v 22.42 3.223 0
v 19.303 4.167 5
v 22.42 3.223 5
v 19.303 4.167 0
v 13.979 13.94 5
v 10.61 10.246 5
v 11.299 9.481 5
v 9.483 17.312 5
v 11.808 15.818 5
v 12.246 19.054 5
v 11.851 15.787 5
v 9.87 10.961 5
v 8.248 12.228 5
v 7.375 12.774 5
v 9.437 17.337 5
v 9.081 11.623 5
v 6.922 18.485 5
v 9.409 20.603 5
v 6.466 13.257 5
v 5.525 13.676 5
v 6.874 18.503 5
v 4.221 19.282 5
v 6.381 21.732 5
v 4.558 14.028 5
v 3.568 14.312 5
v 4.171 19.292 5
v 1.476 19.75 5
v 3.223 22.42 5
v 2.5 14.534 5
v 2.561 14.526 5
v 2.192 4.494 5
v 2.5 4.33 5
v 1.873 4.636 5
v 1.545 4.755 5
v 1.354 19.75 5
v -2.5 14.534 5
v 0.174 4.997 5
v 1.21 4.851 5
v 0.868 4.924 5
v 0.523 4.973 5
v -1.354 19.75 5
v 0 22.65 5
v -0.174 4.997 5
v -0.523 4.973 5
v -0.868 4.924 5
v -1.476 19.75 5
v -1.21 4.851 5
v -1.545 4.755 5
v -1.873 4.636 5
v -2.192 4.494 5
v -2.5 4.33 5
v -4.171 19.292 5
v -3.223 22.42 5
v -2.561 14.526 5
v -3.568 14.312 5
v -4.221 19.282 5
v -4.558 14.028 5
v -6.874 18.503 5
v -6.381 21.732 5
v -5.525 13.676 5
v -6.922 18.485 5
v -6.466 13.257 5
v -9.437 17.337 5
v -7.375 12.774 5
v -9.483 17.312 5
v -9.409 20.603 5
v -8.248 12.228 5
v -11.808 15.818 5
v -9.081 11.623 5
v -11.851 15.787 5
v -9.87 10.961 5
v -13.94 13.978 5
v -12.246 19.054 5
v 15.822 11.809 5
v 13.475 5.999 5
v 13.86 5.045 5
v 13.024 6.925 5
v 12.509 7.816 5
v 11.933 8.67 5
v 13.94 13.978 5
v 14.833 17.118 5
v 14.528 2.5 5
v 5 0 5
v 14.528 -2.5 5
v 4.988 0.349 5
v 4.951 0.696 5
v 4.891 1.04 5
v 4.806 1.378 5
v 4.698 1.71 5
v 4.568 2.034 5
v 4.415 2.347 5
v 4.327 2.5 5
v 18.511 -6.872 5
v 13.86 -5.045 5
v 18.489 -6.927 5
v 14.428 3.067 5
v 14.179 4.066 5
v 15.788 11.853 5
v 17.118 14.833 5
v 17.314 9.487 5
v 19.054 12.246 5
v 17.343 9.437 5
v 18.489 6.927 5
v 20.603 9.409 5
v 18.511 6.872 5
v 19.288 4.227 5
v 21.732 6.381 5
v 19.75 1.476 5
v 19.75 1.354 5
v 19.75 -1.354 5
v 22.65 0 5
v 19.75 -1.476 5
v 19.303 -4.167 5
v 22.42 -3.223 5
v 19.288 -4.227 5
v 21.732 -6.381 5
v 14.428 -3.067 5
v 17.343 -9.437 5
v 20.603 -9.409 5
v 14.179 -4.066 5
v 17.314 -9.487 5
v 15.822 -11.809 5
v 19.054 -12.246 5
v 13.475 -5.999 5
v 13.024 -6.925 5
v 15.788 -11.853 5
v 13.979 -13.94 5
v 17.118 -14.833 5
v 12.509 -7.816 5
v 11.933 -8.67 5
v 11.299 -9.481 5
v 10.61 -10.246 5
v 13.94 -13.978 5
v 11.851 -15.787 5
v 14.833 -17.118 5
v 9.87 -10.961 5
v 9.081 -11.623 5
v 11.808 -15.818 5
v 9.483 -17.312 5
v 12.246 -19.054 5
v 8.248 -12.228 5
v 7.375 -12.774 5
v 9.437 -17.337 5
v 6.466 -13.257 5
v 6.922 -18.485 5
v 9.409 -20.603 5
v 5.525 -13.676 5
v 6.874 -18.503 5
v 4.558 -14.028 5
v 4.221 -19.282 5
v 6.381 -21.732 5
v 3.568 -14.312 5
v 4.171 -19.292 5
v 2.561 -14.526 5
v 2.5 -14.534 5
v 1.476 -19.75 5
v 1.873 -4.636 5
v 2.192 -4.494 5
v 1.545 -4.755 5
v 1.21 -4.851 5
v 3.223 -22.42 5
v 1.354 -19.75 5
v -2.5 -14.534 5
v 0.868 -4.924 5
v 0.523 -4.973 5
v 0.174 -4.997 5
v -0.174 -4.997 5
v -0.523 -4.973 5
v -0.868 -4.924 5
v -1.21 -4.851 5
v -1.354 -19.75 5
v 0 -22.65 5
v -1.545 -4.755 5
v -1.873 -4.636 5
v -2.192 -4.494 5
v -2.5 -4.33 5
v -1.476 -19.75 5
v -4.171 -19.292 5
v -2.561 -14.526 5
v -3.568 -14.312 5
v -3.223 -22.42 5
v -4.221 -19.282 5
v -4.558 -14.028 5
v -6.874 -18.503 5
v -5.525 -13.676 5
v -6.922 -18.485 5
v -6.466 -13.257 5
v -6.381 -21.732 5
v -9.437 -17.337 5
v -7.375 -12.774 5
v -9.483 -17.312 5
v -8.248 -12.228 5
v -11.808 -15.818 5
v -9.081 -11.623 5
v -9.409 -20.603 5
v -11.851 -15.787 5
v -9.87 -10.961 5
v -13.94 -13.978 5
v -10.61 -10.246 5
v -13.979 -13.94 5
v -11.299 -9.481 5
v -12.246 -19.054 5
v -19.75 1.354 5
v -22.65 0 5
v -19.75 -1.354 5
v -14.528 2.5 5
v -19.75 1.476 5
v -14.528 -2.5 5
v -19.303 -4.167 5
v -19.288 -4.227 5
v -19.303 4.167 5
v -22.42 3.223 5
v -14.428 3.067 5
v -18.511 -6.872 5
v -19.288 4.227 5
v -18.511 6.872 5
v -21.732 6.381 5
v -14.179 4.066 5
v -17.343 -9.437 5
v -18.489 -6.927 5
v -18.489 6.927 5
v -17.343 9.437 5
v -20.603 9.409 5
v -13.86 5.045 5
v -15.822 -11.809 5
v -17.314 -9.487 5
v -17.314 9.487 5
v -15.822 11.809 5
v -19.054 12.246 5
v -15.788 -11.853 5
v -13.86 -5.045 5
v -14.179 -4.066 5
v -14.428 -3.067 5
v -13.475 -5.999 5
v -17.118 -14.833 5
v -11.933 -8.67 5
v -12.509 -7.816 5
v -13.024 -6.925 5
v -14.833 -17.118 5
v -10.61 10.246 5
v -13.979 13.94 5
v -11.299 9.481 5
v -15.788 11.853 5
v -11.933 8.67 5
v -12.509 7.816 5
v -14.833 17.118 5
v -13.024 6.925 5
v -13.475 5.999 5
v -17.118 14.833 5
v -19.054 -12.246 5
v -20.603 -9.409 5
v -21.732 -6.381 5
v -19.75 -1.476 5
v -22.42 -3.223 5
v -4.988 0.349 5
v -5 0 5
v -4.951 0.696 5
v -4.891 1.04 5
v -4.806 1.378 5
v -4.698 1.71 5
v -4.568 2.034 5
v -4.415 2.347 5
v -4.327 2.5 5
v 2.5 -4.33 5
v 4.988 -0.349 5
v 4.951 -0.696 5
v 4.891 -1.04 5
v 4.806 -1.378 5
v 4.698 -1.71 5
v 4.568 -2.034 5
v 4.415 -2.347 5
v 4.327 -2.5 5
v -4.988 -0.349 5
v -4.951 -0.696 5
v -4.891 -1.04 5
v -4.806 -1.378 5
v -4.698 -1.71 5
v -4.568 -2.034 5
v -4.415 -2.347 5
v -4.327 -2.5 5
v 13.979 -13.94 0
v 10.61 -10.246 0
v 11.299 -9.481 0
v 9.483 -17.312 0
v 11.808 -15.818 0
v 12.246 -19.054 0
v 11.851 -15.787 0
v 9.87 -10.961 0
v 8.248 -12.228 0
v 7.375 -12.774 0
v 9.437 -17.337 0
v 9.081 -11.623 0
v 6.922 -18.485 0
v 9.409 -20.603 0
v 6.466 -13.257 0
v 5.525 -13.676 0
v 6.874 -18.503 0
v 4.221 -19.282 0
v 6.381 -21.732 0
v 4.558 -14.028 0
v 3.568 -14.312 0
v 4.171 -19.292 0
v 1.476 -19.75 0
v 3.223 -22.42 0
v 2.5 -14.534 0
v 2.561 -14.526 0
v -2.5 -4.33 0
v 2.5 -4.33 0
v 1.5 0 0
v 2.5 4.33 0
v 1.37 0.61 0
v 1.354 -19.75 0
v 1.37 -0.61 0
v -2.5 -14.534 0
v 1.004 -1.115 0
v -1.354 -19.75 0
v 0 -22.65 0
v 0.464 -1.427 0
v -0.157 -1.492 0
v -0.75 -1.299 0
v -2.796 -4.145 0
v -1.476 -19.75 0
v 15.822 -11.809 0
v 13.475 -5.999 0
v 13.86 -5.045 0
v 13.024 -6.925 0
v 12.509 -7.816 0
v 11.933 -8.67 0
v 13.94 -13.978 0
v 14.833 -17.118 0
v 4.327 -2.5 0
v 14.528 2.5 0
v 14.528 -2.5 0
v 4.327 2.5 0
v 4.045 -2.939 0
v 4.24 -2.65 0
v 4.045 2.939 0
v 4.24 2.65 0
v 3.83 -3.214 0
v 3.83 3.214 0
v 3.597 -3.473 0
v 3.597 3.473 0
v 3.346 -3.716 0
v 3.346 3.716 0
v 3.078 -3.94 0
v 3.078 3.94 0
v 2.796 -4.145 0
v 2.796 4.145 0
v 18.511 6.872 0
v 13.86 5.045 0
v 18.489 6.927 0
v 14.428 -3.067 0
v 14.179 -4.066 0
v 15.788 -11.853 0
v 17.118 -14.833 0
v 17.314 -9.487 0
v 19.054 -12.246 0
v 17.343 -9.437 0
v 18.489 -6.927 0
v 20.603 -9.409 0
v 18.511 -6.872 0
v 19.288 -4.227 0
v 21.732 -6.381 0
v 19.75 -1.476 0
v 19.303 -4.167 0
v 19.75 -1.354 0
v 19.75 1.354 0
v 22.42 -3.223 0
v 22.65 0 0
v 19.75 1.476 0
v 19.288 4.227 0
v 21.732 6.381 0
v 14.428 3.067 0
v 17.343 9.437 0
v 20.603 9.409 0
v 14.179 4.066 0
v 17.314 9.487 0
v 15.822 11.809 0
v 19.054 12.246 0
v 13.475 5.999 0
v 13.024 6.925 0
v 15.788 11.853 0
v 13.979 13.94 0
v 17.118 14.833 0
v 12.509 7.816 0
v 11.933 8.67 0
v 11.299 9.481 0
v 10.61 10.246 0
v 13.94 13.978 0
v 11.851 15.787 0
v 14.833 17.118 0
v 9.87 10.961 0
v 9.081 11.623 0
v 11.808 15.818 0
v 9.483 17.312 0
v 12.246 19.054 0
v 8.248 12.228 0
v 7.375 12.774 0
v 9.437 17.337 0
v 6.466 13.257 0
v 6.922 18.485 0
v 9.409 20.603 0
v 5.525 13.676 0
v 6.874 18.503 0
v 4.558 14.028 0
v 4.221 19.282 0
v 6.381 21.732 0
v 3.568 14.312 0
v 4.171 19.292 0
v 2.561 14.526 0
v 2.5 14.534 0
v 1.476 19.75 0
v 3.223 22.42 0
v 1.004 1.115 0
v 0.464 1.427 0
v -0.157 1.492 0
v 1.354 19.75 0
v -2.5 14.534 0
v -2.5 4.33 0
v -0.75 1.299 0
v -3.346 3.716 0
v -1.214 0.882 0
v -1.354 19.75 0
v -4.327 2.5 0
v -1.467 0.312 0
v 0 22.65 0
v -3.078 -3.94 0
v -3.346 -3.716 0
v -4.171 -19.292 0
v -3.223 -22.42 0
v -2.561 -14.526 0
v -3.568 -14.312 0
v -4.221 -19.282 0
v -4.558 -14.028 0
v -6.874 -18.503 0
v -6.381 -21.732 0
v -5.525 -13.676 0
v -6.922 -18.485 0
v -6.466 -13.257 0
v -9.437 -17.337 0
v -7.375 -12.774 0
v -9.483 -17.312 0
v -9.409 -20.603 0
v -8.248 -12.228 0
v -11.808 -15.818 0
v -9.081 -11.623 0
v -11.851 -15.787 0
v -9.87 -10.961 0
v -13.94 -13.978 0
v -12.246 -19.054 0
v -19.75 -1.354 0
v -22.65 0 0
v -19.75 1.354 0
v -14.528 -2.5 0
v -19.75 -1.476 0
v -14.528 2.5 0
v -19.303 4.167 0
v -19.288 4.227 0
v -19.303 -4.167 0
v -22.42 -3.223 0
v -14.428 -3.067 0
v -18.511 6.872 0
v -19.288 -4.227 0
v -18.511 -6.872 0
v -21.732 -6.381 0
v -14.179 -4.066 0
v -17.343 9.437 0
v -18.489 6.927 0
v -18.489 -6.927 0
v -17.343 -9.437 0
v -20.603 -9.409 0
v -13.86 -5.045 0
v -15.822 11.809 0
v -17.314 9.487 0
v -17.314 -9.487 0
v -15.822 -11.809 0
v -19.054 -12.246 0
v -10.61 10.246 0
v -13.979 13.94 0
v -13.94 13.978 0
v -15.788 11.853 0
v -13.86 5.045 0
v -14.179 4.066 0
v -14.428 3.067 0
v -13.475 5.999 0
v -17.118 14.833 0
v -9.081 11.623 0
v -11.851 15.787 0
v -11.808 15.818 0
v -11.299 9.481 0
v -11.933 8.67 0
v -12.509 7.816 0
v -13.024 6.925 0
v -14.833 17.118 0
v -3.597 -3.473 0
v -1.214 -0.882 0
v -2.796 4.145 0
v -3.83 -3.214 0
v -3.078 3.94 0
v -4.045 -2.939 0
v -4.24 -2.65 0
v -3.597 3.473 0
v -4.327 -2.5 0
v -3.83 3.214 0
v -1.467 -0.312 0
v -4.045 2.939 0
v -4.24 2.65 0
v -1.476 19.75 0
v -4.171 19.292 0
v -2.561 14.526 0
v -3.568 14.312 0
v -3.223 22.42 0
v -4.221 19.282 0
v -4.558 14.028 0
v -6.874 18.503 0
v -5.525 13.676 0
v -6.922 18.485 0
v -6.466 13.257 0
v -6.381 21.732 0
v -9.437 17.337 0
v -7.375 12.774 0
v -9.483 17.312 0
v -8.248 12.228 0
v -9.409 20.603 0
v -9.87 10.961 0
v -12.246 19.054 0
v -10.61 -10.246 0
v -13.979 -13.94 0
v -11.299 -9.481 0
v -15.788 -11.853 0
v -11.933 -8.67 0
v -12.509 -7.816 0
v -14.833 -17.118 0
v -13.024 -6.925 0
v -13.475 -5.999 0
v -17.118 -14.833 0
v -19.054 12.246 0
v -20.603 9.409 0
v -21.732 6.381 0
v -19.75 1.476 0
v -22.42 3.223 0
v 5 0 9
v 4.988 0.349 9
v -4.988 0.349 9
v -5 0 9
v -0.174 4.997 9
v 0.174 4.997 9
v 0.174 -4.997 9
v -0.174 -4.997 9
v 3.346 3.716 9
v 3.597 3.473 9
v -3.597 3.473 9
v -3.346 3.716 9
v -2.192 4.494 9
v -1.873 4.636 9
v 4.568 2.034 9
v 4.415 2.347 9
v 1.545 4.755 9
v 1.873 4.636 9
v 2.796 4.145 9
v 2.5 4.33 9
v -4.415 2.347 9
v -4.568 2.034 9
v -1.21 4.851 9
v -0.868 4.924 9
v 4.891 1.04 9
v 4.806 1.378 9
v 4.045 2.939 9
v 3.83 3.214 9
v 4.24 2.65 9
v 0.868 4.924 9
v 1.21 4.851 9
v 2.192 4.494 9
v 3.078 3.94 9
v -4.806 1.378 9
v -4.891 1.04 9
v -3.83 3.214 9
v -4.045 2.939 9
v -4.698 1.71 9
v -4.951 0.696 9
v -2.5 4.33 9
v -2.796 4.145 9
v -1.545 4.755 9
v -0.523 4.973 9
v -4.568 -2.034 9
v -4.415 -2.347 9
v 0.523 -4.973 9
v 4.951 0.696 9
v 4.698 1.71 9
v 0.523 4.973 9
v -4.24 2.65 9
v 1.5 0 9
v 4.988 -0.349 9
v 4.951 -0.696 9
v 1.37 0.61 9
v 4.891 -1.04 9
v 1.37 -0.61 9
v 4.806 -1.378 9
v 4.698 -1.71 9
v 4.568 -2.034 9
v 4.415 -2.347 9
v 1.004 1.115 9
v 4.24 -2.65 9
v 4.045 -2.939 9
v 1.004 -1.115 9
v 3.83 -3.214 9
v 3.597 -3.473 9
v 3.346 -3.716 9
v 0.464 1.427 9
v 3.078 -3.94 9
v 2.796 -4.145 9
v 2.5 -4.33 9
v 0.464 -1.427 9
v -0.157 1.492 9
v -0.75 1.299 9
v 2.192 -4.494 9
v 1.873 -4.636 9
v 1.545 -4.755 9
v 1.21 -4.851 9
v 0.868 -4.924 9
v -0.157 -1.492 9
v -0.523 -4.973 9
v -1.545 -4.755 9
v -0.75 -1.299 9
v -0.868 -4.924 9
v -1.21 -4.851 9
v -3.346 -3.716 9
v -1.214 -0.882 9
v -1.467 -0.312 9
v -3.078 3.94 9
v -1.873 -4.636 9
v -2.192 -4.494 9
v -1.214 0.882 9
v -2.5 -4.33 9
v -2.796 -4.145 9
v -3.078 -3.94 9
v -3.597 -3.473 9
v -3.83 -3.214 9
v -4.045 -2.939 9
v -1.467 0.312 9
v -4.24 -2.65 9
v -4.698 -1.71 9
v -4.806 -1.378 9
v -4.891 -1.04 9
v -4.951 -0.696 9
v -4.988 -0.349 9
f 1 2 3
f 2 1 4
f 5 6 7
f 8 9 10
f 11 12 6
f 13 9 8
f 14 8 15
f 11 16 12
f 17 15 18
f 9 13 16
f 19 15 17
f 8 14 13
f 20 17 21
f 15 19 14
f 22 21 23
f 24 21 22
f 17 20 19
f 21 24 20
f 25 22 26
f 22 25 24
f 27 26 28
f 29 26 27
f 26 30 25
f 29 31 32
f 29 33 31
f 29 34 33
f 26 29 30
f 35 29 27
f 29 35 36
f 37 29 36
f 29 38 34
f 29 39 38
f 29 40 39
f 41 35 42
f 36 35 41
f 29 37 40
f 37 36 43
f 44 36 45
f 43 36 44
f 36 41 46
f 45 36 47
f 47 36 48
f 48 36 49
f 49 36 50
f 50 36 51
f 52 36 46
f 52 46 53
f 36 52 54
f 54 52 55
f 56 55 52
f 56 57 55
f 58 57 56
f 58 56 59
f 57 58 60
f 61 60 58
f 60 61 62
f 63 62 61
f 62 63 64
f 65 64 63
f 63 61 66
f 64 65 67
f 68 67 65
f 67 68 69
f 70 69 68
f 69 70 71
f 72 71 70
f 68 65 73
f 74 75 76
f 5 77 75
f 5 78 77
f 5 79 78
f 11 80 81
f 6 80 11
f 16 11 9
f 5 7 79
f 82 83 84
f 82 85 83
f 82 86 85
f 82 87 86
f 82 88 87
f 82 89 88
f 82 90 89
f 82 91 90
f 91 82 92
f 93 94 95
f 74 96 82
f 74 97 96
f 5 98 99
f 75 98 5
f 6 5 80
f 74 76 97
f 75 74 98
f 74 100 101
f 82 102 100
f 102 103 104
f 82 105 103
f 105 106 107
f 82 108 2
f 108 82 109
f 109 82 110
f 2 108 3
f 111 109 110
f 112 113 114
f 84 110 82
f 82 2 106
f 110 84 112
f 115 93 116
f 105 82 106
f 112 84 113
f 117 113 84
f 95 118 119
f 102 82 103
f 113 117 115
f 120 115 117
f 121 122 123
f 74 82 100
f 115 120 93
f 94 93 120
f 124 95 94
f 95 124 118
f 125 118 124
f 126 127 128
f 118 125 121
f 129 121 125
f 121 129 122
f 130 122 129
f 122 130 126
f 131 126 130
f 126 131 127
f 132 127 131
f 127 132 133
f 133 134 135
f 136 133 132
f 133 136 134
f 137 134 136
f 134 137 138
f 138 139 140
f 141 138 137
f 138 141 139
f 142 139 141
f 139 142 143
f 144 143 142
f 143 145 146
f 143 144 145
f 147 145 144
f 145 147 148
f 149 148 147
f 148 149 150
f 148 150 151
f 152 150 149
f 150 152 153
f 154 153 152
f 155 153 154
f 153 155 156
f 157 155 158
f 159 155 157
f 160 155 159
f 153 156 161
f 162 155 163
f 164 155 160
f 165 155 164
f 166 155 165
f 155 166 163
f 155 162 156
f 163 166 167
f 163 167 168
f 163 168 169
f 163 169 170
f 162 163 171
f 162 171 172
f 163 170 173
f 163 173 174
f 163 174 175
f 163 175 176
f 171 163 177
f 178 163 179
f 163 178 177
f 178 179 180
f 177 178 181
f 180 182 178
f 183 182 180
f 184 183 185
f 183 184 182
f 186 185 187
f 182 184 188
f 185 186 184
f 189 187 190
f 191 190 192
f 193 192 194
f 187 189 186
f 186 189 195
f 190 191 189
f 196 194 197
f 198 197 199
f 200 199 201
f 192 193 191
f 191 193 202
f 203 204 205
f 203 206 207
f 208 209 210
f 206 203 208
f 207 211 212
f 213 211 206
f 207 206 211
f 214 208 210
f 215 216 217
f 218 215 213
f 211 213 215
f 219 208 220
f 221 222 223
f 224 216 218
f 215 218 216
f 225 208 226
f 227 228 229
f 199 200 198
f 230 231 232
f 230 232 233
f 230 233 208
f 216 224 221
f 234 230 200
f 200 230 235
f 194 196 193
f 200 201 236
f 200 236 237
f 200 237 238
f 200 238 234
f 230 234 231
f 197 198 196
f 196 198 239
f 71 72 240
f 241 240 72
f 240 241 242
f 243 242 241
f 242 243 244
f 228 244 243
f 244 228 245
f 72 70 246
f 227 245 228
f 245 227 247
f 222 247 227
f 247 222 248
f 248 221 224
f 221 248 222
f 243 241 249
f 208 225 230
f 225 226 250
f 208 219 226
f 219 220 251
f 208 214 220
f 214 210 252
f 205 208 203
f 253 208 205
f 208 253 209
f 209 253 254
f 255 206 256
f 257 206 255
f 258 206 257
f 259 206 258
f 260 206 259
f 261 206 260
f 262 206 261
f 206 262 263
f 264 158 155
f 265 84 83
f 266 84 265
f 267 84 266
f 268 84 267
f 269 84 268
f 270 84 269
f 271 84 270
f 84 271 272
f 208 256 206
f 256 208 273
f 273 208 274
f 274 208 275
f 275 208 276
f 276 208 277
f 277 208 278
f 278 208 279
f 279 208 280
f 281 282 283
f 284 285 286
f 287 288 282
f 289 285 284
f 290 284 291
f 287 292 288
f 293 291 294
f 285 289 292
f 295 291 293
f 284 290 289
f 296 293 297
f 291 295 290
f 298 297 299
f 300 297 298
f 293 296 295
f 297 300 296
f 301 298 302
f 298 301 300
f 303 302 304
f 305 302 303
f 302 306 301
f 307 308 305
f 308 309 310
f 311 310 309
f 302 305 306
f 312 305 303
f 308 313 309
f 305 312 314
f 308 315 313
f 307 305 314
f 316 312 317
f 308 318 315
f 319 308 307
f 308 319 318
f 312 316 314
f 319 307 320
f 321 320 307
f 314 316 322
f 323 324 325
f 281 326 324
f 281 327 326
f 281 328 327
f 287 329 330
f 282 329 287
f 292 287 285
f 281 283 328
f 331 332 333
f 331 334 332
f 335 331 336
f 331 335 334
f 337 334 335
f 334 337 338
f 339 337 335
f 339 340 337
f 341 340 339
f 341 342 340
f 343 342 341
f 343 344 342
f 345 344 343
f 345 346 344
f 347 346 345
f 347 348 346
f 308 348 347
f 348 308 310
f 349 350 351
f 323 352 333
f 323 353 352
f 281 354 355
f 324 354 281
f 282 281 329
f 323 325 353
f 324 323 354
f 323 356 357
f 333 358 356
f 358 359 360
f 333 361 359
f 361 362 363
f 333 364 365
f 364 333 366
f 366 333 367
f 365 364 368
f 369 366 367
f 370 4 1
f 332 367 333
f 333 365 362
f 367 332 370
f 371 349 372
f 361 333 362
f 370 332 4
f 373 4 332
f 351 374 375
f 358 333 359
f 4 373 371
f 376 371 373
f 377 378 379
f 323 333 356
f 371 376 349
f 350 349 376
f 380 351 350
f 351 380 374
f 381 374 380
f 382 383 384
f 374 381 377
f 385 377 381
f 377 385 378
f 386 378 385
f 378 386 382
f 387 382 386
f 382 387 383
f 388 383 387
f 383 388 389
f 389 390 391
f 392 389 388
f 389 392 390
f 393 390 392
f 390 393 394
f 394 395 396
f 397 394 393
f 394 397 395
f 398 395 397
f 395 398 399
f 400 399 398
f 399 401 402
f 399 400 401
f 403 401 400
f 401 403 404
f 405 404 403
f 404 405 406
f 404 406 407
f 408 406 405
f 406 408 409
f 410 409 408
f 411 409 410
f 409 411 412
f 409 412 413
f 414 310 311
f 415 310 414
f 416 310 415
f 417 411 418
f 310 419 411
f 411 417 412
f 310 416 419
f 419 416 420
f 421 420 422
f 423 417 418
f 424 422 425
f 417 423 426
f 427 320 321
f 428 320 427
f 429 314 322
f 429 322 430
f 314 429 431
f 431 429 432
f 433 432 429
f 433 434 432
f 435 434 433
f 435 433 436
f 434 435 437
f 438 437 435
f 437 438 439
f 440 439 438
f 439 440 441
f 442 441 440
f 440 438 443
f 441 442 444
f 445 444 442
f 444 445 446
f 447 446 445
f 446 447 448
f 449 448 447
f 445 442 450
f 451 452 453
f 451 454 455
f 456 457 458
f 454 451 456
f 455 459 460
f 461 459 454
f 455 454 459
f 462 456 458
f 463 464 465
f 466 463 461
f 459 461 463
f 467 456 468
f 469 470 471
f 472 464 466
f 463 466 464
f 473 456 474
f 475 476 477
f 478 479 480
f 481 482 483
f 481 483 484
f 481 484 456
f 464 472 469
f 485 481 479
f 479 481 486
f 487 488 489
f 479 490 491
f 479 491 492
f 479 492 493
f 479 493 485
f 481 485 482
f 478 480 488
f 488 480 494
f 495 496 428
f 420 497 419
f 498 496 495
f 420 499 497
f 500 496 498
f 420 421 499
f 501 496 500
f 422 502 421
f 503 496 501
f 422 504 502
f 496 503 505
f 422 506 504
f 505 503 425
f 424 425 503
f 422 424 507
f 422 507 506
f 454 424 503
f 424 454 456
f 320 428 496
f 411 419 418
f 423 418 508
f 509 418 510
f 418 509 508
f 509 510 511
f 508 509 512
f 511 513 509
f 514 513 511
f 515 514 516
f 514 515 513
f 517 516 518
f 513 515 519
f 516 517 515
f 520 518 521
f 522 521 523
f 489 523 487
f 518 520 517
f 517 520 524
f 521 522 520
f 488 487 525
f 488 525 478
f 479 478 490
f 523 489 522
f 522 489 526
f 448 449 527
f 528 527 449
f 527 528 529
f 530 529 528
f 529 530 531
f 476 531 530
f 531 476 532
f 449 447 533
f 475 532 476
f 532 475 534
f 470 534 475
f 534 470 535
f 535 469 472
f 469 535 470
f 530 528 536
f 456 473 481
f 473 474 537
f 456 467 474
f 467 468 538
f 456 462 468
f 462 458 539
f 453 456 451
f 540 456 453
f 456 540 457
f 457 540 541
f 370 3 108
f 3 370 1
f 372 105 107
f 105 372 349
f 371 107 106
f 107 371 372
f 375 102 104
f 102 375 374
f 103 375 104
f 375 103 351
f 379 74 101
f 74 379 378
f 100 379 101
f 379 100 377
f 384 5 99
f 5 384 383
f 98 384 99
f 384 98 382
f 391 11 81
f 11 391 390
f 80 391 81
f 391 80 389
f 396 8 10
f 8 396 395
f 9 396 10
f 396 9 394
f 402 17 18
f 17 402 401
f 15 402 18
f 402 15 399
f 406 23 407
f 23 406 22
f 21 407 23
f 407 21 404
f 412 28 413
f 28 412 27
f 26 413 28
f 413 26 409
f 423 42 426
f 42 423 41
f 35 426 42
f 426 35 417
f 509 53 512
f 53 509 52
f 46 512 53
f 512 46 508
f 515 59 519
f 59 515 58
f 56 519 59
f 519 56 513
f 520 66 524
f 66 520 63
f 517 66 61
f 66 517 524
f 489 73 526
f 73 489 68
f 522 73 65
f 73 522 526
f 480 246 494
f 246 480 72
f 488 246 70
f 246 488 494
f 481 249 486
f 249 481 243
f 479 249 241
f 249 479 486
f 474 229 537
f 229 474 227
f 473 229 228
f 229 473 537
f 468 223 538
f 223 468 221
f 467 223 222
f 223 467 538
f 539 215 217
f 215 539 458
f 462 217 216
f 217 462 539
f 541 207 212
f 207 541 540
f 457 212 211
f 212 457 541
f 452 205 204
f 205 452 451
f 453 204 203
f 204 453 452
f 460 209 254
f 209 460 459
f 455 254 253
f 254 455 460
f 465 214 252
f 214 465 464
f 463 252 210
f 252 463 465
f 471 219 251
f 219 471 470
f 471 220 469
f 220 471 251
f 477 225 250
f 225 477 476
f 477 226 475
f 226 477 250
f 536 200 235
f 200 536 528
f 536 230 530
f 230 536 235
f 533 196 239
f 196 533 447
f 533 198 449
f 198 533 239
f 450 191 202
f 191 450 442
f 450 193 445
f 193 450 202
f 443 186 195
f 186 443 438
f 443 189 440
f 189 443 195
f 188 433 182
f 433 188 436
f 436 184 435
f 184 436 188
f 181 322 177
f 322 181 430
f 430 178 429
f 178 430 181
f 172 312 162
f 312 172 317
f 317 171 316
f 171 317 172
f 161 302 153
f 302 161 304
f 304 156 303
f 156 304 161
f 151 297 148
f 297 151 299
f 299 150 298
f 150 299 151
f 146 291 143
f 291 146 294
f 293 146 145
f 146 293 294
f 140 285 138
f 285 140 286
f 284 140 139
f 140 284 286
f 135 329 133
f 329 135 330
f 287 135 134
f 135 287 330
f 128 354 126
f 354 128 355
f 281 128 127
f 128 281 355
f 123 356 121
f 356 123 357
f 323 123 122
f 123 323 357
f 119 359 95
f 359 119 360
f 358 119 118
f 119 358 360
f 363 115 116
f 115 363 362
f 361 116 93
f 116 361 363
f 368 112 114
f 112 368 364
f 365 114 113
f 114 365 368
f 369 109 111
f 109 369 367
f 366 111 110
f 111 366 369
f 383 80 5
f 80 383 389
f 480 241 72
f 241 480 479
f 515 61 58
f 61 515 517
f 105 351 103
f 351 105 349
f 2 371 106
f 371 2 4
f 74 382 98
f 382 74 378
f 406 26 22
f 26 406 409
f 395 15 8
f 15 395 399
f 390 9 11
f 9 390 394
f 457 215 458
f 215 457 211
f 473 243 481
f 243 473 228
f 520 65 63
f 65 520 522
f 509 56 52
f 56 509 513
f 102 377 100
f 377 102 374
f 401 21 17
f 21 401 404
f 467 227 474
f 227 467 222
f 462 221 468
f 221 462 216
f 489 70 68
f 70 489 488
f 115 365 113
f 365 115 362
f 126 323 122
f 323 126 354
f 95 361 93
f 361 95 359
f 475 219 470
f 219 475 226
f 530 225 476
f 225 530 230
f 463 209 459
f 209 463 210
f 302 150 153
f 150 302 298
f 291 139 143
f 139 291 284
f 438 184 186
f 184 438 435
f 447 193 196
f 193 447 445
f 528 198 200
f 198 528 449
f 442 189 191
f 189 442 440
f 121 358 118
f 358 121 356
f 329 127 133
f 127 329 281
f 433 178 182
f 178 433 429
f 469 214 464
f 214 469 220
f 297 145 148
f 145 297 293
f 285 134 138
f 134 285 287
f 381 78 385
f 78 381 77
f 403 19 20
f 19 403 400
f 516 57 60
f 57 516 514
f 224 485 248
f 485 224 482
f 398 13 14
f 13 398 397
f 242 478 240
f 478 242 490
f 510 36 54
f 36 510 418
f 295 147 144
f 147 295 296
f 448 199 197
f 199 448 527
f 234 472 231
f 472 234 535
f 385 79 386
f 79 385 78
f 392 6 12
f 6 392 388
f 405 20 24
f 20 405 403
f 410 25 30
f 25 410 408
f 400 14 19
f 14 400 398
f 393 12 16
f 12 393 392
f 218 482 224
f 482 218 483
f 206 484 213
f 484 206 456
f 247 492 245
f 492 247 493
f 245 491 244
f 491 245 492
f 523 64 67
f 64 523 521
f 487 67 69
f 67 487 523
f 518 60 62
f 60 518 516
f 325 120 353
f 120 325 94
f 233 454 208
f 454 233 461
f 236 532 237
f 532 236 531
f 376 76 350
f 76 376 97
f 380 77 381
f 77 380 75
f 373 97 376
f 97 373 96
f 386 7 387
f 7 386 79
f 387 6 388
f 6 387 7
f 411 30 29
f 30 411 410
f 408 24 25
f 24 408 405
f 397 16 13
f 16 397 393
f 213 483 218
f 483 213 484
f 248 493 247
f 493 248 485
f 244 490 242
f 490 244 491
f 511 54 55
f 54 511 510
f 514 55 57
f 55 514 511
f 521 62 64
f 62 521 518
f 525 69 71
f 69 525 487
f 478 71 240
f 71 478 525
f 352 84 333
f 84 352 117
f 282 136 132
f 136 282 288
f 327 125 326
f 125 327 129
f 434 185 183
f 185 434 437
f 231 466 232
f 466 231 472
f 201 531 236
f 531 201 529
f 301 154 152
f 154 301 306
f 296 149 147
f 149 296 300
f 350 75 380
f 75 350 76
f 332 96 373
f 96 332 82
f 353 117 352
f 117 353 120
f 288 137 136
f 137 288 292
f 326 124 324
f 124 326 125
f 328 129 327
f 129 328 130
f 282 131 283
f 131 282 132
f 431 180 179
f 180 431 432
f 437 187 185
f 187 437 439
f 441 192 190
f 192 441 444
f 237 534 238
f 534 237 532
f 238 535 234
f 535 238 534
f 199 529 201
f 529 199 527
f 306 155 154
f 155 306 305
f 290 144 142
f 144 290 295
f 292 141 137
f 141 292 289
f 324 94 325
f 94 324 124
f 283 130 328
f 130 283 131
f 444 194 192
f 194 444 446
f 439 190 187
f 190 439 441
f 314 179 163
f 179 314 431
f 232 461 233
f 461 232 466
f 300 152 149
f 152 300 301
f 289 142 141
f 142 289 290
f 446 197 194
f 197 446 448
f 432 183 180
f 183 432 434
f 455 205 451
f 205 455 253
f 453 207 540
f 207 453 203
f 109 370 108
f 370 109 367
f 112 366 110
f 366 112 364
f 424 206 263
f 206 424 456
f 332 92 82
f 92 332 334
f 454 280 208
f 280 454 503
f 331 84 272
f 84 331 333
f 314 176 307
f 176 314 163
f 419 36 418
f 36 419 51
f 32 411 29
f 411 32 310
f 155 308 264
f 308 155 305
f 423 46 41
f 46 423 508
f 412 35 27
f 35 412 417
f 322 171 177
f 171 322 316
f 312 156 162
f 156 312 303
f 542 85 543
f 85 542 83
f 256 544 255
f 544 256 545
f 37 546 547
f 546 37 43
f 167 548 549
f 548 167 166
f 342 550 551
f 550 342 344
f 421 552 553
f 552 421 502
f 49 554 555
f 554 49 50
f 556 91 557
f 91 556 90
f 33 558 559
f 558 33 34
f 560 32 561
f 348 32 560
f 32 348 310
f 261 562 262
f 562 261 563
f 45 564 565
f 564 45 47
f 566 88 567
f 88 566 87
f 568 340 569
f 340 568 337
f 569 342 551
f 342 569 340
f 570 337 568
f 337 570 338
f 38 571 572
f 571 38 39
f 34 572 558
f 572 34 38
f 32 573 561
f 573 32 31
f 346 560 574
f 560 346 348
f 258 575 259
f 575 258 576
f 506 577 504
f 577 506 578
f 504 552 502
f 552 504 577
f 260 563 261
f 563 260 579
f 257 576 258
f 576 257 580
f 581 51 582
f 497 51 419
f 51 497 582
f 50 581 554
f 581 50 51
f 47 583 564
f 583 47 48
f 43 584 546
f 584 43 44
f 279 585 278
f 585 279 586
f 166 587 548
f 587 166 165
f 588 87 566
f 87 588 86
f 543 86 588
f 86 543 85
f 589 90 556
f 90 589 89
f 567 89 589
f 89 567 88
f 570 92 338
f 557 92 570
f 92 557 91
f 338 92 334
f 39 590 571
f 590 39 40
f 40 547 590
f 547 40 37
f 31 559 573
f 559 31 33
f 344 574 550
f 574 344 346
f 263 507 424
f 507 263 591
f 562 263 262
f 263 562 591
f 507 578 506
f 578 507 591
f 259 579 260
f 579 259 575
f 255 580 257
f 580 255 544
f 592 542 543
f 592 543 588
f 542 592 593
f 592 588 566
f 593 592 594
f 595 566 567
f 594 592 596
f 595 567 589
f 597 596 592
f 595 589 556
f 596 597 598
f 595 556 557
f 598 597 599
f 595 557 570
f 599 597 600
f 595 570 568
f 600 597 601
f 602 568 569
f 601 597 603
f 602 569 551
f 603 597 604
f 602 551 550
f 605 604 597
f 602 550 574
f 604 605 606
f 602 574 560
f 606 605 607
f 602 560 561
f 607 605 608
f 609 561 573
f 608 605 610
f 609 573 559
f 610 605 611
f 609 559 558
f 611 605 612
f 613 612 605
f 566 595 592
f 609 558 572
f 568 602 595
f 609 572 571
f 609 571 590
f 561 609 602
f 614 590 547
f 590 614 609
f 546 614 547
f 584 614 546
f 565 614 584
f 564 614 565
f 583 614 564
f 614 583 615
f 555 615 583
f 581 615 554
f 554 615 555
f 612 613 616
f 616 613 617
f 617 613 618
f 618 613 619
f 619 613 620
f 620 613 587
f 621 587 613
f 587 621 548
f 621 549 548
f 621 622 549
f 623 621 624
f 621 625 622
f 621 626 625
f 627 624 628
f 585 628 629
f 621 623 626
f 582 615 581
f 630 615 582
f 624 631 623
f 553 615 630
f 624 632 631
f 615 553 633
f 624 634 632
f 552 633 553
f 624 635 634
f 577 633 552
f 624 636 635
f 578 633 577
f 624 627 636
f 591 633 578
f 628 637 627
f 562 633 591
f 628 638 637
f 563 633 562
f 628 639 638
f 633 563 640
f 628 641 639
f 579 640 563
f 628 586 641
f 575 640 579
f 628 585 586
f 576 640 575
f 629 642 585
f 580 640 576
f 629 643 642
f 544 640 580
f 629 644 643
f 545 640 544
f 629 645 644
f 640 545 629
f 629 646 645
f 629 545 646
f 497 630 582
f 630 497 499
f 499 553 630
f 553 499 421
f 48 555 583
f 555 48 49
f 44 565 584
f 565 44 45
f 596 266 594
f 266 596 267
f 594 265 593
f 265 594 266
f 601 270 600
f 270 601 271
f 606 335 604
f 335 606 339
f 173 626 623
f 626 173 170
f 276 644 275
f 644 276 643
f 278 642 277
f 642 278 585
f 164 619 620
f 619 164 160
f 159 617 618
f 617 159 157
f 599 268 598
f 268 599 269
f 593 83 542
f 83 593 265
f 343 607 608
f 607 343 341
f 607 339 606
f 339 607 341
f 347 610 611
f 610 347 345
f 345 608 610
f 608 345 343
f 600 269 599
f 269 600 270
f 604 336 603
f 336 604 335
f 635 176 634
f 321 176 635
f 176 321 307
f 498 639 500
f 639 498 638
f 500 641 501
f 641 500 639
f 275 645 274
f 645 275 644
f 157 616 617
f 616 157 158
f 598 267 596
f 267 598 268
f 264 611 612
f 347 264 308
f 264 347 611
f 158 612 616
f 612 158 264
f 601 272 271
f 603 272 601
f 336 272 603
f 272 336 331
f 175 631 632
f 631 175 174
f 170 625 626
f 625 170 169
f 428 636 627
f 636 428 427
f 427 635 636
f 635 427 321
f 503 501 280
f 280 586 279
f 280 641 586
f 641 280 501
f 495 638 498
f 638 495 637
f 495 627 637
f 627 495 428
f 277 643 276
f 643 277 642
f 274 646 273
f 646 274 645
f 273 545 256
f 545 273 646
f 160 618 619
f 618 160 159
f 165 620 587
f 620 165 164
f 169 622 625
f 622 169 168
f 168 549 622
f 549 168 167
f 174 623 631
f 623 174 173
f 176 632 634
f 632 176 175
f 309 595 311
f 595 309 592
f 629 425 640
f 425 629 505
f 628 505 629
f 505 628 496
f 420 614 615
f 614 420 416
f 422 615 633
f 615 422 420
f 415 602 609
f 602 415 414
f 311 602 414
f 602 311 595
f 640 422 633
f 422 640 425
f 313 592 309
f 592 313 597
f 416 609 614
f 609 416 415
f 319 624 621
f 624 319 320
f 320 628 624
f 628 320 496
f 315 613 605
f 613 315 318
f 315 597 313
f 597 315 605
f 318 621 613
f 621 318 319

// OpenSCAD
/* 
 * Telebot 1.1
 * Copyright (c) 2015-2016 by Paul-Louis Ageneau
 *
 * This program is free software: you can redistribute it and/or modify
 * it under the terms of the GNU General Public License as published by
 * the Free Software Foundation, either version 3 of the License, or
 * (at your option) any later version.
 *
 * This program is distributed in the hope that it will be useful,
 * but WITHOUT ANY WARRANTY; without even the implied warranty of
 * MERCHANTABILITY or FITNESS FOR A PARTICULAR PURPOSE.  See the
 * GNU General Public License for more details.
 *
 * You should have received a copy of the GNU General Public License
 * along with this program.  If not, see <http://www.gnu.org/licenses/>.
 */
 
// Wheel gear

radius = 20-0.25;
height = 5;
gap = 4;
d = 3;

translate([0,0,height/2]) union() {
    difference() {
        gear(radius, height, d);
        cylinder(h=height+10, r=radius-5, center=true, $fn=90);
    }
    
    difference() {
        union() {
            cube([radius*2,5,height], center=true);
            cube([5,radius*2,height], center=true);
            translate([0,0,-height/2]) cylinder(h=height+gap, r=5, center=false, $fn=90);
        }
        cylinder(h=height+15, r=1.5, center=true, $fn=15);
    }
}

module gear(r, h, d)
{
    f = 0.5+0.5*r/(r+d);
    c = 2*PI*r/f;
    n = floor(c/d);

    union() {
        cylinder(h=h, r=r, center=true, $fn=90);
        
        for(i = [1 : n])
            rotate([0,0,i*360/n])
                translate([r-0.1,0,0])
                    scale([1,f/2,1])
                        rotate([0,0,45])
                            cube([2*abs(d)/sqrt(2), 2*abs(d)/sqrt(2), h], center=true);
    }
}
